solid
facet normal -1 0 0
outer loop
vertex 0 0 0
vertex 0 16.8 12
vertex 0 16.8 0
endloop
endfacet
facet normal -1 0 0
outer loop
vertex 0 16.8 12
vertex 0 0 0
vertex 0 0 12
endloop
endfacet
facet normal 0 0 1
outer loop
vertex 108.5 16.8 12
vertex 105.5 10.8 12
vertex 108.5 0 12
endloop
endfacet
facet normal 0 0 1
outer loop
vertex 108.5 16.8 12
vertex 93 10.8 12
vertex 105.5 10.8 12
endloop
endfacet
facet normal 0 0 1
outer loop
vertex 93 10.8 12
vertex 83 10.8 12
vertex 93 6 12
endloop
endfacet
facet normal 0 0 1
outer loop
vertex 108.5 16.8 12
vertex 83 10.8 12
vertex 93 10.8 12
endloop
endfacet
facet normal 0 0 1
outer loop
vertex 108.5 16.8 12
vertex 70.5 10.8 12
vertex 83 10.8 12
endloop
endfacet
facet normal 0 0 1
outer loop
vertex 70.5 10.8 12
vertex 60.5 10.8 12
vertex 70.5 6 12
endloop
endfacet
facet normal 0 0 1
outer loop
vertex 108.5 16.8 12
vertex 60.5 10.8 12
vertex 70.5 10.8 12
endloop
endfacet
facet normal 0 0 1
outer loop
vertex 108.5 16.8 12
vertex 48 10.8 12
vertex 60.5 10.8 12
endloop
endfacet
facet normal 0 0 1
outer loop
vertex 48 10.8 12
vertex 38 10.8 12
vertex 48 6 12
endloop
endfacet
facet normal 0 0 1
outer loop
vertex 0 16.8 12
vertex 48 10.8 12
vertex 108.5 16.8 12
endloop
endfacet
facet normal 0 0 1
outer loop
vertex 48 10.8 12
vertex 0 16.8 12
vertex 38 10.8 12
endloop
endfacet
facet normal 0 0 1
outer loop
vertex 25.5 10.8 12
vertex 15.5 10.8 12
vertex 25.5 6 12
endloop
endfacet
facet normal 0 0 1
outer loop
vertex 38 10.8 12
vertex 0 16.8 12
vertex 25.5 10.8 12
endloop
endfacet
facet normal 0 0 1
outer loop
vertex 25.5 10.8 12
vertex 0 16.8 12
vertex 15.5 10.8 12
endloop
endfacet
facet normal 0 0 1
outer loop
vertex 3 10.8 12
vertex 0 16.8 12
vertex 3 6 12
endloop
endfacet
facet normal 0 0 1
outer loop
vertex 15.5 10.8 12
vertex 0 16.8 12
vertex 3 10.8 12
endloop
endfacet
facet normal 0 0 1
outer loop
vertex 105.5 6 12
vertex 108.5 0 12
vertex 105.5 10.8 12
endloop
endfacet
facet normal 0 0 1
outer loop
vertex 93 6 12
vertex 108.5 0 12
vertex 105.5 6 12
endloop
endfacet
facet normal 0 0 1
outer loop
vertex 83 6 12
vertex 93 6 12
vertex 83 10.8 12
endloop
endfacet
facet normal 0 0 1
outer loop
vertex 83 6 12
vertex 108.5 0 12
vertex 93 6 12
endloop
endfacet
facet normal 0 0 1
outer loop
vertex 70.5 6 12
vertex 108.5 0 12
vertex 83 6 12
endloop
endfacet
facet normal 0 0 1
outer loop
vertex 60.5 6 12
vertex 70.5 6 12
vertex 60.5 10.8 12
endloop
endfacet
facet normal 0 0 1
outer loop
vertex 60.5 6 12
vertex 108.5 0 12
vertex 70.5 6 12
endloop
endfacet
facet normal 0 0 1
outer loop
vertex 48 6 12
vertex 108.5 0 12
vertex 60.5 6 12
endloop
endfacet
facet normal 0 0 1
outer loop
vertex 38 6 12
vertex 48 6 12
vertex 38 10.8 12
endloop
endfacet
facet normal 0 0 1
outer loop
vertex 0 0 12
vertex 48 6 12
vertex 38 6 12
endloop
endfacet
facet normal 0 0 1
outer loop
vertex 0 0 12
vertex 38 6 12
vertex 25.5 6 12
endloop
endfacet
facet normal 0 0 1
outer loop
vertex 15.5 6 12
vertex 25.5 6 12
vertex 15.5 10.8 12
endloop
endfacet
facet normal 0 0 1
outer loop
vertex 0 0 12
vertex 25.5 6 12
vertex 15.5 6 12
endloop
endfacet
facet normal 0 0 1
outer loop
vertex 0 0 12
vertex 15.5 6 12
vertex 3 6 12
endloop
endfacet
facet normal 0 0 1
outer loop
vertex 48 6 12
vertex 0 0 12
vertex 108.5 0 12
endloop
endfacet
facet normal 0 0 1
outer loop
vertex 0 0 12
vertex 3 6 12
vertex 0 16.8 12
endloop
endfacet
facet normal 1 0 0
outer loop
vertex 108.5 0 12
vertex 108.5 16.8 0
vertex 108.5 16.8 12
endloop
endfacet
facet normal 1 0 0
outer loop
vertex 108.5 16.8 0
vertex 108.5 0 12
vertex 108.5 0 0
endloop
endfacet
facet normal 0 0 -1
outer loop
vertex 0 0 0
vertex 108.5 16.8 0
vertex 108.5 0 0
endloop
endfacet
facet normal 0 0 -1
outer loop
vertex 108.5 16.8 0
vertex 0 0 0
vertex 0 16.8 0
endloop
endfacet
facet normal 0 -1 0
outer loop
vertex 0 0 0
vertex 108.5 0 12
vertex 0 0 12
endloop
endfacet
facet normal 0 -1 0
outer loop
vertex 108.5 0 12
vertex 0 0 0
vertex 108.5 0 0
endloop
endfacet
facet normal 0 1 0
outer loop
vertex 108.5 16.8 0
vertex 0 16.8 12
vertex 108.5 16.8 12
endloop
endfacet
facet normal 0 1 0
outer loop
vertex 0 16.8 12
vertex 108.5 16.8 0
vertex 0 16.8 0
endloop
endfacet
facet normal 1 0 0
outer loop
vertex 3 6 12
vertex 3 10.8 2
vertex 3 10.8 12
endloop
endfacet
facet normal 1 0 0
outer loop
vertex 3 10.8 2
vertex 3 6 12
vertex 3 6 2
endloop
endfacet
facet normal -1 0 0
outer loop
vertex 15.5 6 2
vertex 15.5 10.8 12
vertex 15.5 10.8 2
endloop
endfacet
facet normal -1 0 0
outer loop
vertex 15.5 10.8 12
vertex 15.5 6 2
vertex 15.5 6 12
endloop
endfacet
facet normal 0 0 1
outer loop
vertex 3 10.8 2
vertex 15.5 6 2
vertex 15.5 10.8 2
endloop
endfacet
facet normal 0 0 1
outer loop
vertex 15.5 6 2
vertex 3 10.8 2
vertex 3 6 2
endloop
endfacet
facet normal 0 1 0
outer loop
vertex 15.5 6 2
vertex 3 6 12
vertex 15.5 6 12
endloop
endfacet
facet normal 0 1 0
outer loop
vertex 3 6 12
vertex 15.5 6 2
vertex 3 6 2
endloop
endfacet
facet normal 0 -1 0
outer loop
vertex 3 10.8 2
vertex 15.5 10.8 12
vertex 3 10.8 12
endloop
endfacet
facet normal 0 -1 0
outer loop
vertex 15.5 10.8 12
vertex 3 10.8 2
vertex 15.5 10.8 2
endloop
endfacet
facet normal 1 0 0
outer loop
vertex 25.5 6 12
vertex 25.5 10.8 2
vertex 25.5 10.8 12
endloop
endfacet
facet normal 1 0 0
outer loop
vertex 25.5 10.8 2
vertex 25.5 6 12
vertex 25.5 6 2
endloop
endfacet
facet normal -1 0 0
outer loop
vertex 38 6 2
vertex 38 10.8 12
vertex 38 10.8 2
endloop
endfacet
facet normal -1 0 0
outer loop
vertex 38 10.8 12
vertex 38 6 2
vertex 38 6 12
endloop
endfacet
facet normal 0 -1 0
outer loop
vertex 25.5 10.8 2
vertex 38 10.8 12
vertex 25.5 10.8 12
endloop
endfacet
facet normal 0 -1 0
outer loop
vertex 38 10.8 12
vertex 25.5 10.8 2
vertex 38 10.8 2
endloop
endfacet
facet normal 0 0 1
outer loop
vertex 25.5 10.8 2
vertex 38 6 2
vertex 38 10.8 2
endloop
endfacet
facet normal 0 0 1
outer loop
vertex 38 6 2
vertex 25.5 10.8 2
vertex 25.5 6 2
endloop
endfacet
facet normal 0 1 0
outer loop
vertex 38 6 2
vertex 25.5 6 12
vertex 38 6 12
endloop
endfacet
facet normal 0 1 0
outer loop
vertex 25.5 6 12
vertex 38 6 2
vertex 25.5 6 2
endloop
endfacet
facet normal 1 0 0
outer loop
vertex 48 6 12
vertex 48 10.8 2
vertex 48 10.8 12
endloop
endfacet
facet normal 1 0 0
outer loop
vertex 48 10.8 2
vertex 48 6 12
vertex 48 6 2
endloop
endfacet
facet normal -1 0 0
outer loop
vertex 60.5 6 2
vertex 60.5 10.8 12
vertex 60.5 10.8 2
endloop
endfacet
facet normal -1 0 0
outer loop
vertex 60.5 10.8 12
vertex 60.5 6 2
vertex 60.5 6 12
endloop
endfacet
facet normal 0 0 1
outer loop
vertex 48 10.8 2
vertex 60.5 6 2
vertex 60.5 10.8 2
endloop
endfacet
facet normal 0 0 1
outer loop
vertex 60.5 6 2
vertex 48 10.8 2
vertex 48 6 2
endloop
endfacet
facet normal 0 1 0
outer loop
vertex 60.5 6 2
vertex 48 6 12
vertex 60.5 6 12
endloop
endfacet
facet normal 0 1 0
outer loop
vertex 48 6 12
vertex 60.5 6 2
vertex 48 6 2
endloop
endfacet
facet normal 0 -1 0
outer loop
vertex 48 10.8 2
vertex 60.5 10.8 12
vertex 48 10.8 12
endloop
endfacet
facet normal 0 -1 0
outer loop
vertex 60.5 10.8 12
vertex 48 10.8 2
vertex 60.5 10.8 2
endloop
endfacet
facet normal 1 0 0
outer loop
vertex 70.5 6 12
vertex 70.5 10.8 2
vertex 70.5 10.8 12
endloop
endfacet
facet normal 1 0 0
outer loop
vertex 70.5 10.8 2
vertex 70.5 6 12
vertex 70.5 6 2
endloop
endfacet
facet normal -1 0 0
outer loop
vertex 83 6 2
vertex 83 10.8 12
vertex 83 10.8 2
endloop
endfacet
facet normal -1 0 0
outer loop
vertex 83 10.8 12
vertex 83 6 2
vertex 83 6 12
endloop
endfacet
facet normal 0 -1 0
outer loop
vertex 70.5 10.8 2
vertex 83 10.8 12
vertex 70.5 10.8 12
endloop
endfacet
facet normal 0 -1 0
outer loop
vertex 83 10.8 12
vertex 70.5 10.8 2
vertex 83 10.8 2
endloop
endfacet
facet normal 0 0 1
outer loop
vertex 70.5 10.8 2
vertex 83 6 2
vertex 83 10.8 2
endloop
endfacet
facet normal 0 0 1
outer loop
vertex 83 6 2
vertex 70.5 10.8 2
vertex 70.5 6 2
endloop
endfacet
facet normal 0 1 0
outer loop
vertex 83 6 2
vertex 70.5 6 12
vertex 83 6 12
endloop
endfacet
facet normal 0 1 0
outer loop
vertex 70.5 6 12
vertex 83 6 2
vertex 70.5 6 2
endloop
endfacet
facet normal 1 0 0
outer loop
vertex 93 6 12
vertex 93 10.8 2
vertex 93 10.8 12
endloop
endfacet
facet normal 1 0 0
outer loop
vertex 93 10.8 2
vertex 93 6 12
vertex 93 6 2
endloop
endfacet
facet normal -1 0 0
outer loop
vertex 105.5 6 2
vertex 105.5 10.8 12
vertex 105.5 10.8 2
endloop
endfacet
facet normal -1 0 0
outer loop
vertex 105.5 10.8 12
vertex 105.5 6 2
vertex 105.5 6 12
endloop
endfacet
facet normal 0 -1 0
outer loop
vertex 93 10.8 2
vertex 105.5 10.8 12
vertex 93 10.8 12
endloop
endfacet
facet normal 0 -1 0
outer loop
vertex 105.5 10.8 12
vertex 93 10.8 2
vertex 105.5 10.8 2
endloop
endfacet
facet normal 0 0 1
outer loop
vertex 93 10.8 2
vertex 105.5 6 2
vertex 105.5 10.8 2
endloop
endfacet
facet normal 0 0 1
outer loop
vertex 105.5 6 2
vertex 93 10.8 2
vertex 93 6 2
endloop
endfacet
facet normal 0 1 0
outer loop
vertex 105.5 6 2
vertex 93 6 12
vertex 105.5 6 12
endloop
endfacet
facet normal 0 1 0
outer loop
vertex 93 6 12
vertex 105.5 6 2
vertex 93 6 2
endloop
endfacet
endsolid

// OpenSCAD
USB_L = 12.5;
USB_W = 4.8;
USB_H = 14;

USB_WW = 10;
USB_LL = 6;
USB_EDGE = 3;


Hub_L = (USB_L+USB_WW)*(5-1)+USB_L+3*2;
Hub_W = USB_W+USB_LL*2;
Hub_bottom = 2;
Hub_H = USB_H-Hub_bottom;

union(){
    difference(){
        cube([Hub_L,Hub_W,Hub_H]);
        translate([USB_EDGE,USB_LL,Hub_bottom])
        cube([USB_L,USB_W,USB_H]);
        translate([(USB_WW+USB_L)+USB_EDGE,USB_LL,Hub_bottom])
        cube([USB_L,USB_W,USB_H]);
        translate([(USB_WW+USB_L)*2+USB_EDGE,USB_LL,Hub_bottom])
        cube([USB_L,USB_W,USB_H]);
        translate([(USB_WW+USB_L)*3+USB_EDGE,USB_LL,Hub_bottom])
        cube([USB_L,USB_W,USB_H]);
        translate([(USB_WW+USB_L)*4+USB_EDGE,USB_LL,Hub_bottom])
        cube([USB_L,USB_W,USB_H]);
    };
};
